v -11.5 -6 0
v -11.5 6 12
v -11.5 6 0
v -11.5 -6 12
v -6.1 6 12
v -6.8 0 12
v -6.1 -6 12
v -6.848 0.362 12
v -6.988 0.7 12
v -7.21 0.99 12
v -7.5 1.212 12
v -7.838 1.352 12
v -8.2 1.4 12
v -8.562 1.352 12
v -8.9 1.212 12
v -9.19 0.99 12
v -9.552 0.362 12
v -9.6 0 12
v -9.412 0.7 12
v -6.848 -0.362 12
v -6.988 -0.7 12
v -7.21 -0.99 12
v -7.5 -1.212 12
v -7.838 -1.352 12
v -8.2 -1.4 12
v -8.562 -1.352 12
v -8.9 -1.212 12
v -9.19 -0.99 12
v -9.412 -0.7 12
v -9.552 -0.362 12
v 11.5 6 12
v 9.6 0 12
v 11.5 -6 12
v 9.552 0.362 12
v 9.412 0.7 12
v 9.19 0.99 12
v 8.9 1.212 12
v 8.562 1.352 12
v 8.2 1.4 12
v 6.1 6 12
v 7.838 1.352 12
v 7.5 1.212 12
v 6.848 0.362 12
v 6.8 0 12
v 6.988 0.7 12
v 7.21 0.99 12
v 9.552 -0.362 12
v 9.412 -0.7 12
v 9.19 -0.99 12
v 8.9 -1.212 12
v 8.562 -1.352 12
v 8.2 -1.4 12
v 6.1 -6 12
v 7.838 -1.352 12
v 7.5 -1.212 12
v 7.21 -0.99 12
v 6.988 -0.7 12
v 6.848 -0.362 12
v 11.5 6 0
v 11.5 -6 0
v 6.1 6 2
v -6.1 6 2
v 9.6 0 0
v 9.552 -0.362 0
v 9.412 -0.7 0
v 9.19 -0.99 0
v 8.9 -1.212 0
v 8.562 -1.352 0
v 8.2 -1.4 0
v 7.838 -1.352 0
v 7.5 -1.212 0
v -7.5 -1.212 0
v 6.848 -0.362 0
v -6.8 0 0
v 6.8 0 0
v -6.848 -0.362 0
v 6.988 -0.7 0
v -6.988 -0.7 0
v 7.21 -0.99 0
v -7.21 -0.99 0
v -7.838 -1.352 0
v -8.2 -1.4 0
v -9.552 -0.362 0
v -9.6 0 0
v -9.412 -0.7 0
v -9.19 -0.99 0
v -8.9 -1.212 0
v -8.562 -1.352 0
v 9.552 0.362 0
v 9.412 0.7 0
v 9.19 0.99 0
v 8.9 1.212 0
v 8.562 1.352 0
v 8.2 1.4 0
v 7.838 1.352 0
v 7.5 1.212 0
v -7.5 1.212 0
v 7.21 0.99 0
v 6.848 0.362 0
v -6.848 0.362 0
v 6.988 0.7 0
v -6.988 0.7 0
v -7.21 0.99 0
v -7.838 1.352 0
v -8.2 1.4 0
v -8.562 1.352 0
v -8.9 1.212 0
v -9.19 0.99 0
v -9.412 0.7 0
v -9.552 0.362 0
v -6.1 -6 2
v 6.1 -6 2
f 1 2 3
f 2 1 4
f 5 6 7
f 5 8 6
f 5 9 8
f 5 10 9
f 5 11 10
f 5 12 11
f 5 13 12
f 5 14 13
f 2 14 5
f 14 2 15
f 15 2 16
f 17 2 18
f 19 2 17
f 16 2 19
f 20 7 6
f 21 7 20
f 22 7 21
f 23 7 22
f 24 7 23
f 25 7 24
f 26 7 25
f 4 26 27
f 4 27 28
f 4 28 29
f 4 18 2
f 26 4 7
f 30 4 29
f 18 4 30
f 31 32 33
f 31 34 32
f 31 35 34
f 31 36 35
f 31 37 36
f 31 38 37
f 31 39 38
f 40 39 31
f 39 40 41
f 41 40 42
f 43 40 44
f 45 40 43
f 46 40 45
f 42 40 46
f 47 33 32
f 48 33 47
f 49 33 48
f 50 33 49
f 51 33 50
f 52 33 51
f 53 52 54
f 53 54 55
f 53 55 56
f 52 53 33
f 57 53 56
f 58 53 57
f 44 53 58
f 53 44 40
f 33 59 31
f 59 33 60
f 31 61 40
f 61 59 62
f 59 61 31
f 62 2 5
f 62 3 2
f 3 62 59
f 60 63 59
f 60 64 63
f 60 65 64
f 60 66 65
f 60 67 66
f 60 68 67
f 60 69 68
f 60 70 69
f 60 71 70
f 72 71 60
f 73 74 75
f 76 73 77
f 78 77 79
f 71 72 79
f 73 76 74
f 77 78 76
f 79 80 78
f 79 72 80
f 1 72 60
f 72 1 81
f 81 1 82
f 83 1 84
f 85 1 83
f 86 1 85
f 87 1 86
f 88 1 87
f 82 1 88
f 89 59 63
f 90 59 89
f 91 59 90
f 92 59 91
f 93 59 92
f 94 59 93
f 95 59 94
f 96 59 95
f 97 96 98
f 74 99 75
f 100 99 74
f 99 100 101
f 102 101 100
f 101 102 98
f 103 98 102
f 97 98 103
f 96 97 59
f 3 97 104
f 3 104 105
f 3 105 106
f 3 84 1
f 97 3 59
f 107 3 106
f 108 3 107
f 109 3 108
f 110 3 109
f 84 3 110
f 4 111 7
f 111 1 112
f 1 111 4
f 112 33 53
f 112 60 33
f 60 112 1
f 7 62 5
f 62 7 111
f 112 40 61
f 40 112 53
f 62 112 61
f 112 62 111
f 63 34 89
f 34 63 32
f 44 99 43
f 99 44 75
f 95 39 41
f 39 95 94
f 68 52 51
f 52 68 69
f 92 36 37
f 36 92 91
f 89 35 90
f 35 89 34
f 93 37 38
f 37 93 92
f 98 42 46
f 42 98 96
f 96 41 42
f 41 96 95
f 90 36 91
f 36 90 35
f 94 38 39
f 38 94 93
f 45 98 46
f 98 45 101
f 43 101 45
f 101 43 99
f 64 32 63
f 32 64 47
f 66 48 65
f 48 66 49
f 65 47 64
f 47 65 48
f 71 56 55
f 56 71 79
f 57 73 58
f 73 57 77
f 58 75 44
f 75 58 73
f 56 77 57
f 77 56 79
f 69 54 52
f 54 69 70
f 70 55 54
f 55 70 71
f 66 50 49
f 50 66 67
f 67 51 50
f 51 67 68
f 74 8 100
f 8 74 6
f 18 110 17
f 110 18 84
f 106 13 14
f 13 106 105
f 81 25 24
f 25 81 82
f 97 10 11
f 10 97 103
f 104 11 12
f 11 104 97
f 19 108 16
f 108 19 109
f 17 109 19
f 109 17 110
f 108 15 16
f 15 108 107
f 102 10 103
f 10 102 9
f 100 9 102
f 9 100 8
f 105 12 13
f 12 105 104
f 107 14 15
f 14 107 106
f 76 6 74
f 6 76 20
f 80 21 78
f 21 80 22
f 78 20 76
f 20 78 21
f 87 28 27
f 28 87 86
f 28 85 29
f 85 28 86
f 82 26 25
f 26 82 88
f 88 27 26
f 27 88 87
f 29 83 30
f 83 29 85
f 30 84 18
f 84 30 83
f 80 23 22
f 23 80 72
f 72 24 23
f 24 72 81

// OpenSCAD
$fn=24;
gap=0.2; // parámetro de ajuste según impresora

difference(){
translate([-11.5,-6,0])
    cube(size=[23,12,12]);

translate([-6-gap/2,-7,2])
    cube(size=[12+gap,14,12]);
translate([8+gap,0,-1])cylinder(d=2.8,h=15);
translate([-8-gap,0,-1])cylinder(d=2.8,h=15);
}
